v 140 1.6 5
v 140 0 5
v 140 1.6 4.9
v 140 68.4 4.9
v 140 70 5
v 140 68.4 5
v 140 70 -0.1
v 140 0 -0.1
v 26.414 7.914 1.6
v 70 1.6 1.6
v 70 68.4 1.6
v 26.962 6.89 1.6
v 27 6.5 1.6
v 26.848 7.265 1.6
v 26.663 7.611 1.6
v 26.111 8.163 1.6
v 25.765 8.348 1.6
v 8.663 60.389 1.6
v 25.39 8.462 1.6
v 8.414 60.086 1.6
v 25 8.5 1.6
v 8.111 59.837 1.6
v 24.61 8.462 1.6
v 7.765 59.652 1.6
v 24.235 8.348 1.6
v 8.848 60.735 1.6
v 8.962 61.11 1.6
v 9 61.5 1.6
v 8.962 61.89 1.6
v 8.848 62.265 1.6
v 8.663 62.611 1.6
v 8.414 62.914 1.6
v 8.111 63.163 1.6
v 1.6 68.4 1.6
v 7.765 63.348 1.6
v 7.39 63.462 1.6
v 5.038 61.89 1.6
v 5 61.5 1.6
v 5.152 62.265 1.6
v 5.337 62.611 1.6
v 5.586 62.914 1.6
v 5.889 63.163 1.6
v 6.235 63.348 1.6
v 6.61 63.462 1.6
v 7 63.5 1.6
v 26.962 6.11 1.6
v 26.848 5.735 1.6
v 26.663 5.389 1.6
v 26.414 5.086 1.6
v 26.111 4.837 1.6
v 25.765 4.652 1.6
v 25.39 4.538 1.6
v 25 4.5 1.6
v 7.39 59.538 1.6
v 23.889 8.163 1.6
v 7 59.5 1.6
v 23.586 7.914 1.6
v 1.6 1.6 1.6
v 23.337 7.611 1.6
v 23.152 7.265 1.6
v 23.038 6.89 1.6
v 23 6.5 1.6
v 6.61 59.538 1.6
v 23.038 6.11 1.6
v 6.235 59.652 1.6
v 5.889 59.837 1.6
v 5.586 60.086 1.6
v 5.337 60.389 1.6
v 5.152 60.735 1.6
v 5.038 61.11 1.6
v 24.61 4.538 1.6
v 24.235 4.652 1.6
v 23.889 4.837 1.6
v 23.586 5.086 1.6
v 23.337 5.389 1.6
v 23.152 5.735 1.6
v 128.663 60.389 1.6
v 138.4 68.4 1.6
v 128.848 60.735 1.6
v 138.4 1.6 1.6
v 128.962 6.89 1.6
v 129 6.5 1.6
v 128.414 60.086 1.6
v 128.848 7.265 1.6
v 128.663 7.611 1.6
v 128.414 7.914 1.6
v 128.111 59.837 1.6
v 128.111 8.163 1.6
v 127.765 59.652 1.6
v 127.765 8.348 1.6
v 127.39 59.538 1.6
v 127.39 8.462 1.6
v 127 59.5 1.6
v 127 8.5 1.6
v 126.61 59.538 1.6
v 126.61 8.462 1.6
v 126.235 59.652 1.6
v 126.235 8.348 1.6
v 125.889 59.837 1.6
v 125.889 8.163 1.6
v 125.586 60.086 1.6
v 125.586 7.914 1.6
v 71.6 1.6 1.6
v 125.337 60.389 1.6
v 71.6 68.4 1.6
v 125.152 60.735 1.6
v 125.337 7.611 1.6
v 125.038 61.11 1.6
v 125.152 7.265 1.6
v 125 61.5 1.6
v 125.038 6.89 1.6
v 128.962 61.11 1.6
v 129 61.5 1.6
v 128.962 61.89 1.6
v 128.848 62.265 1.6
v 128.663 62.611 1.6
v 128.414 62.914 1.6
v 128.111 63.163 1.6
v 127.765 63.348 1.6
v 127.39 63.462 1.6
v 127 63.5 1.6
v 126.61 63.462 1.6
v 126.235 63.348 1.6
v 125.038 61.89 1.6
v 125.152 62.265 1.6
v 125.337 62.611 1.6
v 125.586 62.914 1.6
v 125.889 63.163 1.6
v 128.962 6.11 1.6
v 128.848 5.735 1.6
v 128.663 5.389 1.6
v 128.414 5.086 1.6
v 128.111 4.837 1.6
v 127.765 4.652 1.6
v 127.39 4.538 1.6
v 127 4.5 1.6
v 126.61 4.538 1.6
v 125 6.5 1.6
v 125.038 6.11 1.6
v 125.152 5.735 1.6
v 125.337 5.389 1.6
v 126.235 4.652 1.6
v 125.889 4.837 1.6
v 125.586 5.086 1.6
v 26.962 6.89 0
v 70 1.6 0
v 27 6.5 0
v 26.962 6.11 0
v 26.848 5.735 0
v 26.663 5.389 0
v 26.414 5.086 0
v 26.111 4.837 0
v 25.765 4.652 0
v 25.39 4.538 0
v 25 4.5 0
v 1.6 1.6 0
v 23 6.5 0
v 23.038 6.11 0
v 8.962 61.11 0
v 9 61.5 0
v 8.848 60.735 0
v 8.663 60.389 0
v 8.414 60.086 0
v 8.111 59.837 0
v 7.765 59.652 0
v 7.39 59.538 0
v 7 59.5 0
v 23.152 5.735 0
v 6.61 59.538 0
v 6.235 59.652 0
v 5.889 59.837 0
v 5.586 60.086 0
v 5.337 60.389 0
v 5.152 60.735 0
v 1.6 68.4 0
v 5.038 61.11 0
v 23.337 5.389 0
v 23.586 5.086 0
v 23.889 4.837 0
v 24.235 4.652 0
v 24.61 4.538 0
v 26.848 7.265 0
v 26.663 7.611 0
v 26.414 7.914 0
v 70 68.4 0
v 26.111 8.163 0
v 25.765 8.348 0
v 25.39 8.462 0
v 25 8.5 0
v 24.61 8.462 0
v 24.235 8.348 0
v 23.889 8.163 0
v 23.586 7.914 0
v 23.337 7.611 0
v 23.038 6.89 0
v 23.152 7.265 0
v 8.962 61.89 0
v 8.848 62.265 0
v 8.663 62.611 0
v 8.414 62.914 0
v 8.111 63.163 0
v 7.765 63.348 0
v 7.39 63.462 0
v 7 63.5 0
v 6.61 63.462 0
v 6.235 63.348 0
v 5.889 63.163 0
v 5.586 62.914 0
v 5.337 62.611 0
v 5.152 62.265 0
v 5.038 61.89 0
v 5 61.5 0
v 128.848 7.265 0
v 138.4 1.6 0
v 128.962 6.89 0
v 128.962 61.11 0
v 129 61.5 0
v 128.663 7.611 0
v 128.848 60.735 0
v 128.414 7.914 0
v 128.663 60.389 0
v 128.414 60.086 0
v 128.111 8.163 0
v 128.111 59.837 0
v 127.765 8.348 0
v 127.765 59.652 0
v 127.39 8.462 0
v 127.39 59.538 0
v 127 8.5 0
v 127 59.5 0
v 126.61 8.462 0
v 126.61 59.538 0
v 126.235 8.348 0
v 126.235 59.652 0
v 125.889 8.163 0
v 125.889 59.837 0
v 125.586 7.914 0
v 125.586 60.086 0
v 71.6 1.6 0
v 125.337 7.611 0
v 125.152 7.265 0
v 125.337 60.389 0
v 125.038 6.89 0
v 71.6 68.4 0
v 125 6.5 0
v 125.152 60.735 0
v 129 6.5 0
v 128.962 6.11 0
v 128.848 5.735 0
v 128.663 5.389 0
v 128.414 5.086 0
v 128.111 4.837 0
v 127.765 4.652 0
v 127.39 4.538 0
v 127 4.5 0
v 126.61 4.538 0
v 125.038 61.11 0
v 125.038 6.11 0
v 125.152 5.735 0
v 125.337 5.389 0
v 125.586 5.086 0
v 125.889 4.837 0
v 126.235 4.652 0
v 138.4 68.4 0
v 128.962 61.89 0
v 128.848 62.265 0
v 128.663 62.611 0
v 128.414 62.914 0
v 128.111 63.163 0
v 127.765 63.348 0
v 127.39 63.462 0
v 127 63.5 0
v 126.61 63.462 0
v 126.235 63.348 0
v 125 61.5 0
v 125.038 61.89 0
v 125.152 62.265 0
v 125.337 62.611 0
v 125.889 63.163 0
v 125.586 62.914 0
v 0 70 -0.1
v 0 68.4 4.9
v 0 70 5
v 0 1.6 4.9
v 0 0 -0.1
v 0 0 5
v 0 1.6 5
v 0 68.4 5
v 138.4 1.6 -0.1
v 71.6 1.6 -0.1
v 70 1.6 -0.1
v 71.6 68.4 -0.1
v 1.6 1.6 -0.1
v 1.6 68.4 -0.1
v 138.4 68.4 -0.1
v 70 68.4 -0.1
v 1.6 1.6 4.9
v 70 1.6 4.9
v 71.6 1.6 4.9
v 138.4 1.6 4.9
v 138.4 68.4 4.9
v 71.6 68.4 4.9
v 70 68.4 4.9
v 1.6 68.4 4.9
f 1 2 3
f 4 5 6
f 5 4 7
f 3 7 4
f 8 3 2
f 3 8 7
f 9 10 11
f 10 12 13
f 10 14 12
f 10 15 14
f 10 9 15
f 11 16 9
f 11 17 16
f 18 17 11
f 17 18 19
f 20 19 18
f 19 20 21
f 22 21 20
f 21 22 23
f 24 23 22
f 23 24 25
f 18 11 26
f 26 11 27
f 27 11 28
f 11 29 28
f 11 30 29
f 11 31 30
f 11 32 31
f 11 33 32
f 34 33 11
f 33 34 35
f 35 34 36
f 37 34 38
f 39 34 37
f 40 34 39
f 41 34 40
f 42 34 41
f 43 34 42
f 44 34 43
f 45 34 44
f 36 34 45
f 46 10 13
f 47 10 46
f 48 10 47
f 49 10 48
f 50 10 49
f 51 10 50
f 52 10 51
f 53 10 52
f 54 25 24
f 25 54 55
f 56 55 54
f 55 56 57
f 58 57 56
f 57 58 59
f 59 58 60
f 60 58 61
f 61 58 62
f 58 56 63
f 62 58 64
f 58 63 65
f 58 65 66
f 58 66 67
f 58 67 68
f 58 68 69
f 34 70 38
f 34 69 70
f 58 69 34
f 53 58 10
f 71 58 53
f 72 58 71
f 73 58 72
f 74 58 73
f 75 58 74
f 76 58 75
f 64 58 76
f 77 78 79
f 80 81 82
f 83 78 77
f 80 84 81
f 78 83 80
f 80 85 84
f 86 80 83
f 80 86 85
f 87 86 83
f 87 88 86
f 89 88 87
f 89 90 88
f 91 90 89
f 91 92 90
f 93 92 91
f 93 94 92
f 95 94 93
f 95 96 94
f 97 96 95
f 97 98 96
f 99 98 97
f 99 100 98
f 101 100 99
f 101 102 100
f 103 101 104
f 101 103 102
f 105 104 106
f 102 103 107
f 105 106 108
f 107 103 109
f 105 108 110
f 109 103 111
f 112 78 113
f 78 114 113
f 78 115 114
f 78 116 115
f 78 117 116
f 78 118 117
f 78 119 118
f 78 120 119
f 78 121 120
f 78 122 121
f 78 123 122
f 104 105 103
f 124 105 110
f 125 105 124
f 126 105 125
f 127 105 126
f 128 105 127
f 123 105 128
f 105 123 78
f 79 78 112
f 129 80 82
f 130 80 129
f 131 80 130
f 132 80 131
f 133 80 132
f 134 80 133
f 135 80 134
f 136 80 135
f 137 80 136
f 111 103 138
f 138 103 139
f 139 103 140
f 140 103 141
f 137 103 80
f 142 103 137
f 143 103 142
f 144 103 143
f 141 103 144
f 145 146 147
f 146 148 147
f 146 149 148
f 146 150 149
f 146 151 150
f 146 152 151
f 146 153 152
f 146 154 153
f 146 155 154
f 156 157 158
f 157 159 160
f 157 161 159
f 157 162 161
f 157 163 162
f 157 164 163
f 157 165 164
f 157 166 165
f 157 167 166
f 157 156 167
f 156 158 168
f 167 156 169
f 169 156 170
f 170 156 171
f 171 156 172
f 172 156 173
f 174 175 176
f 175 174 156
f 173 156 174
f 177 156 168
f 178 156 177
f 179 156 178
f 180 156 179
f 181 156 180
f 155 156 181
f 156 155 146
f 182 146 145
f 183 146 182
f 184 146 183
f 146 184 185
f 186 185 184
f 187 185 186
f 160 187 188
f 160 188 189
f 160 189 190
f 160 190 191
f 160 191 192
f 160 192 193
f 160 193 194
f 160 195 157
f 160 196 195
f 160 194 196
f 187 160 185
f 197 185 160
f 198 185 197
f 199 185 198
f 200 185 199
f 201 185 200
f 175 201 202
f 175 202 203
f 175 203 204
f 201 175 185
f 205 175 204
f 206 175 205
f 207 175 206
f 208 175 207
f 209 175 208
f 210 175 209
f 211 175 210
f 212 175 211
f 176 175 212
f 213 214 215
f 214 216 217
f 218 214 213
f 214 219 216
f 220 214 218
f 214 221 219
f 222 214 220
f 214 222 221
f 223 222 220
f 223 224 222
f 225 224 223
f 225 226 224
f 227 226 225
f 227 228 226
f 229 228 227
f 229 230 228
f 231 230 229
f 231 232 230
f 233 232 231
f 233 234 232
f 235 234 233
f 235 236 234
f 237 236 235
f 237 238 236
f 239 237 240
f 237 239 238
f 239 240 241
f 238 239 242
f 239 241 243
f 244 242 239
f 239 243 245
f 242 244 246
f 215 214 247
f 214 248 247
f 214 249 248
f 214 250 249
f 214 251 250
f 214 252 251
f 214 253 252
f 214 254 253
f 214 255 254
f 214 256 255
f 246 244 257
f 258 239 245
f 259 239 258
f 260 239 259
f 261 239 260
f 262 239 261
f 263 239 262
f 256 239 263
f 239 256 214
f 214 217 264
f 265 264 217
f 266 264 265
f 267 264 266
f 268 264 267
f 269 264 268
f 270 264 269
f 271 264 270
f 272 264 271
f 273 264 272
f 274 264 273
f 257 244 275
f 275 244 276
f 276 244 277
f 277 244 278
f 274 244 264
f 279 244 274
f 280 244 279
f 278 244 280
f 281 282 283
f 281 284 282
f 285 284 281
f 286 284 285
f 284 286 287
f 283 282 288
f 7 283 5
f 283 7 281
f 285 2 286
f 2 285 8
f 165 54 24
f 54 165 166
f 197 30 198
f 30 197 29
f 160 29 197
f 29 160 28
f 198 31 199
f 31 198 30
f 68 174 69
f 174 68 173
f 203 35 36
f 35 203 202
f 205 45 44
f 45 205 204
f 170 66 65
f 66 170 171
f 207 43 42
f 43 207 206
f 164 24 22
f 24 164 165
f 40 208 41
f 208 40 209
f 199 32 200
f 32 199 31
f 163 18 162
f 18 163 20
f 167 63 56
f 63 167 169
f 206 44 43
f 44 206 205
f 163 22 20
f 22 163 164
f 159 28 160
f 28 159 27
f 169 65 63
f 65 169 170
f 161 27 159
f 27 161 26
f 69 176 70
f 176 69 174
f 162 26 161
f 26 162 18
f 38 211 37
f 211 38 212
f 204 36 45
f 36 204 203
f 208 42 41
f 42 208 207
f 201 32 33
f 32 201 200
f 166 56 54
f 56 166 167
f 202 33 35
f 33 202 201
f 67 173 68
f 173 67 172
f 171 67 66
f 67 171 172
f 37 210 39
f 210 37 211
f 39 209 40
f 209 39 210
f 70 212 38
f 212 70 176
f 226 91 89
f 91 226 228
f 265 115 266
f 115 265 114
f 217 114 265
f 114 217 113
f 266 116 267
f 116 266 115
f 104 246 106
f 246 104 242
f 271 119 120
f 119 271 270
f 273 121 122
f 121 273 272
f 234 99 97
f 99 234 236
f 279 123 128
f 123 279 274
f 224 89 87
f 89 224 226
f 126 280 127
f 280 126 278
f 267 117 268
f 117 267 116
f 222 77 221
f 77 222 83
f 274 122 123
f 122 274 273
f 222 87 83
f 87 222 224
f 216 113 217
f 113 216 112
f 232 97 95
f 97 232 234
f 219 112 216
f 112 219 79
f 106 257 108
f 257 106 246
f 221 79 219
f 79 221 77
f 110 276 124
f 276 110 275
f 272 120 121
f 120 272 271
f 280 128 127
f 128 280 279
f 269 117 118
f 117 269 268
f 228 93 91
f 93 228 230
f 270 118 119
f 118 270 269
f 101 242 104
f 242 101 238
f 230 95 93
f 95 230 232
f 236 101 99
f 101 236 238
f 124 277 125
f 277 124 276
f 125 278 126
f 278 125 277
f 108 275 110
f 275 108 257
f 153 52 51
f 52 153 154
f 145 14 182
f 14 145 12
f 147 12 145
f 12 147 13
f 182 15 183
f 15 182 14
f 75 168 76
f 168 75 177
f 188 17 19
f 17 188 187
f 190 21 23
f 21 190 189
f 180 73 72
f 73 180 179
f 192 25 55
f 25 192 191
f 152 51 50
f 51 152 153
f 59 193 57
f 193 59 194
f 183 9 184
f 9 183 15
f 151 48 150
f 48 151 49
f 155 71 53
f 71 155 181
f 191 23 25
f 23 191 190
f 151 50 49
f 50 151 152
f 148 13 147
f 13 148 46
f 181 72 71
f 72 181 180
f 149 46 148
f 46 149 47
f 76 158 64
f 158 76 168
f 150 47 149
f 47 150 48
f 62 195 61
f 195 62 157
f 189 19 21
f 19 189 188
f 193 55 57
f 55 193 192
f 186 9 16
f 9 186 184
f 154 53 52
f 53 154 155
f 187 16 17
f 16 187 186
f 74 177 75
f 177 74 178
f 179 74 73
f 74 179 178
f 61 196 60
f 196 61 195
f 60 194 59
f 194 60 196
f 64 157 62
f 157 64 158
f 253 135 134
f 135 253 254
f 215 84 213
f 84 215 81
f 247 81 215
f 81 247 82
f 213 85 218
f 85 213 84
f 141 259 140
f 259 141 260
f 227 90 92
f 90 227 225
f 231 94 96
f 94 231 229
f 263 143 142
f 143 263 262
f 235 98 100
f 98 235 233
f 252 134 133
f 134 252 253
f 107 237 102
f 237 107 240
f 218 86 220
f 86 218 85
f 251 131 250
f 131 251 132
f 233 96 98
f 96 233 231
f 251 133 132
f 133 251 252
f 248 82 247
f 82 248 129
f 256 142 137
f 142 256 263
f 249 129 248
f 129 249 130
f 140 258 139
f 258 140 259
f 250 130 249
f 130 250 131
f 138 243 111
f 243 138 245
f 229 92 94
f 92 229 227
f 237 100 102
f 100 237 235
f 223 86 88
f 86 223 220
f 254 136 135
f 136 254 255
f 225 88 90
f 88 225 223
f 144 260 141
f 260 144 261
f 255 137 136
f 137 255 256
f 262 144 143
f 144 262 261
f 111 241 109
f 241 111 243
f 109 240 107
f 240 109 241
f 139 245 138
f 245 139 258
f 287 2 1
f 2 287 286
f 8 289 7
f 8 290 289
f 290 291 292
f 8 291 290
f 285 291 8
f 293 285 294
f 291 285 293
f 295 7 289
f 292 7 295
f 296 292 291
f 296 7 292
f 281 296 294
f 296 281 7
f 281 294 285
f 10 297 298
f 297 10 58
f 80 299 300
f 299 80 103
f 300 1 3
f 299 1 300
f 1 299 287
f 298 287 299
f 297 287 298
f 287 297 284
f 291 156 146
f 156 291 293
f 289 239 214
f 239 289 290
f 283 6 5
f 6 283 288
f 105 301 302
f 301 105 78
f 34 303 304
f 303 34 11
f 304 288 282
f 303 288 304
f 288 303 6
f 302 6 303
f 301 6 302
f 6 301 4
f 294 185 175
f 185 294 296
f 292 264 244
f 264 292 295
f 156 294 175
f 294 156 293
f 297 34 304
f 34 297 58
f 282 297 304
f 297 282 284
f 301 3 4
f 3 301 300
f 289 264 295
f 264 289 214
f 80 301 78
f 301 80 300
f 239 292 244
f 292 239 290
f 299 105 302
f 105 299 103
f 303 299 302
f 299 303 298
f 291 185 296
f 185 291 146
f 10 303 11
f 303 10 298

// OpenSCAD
//
// power supply/disk bracket for retro-z80
//

wid = 140;
len = 70;
thk = 1.6;
wall = 5;

e = 0.1;

hole_dia = 4.0;

$fn = 32;

module hole( x, y) {
  translate( [x, y, -e])
    cylinder( h=thk+2*e, d=hole_dia);
}

module bracket() {
  difference() {
    cube( [wid, len, thk]);	/* plate */
    hole( 7, 55+6.5);		/* holes */
    hole( 127,55+6.5);
    hole( 127-102, 6.5);
    hole( 127, 6.5);
  }
  translate( [0, 0, -e]) {	/* walls, stiffener */
       cube( [wid, thk, wall+e]);
       translate( [0, len-thk, 0])
  	  cube( [wid, thk, wall+e]);
       cube( [thk, len, wall]);
       translate( [wid-thk, 0, 0])
  	  cube( [thk, len, wall]);
       translate( [wid/2, 0, 0])
	  cube( [thk, len, wall]);
  }
//  translate( [0, 26, -wall])
//       cube( [wid, thk, wall+e]);	    
}

bracket();
